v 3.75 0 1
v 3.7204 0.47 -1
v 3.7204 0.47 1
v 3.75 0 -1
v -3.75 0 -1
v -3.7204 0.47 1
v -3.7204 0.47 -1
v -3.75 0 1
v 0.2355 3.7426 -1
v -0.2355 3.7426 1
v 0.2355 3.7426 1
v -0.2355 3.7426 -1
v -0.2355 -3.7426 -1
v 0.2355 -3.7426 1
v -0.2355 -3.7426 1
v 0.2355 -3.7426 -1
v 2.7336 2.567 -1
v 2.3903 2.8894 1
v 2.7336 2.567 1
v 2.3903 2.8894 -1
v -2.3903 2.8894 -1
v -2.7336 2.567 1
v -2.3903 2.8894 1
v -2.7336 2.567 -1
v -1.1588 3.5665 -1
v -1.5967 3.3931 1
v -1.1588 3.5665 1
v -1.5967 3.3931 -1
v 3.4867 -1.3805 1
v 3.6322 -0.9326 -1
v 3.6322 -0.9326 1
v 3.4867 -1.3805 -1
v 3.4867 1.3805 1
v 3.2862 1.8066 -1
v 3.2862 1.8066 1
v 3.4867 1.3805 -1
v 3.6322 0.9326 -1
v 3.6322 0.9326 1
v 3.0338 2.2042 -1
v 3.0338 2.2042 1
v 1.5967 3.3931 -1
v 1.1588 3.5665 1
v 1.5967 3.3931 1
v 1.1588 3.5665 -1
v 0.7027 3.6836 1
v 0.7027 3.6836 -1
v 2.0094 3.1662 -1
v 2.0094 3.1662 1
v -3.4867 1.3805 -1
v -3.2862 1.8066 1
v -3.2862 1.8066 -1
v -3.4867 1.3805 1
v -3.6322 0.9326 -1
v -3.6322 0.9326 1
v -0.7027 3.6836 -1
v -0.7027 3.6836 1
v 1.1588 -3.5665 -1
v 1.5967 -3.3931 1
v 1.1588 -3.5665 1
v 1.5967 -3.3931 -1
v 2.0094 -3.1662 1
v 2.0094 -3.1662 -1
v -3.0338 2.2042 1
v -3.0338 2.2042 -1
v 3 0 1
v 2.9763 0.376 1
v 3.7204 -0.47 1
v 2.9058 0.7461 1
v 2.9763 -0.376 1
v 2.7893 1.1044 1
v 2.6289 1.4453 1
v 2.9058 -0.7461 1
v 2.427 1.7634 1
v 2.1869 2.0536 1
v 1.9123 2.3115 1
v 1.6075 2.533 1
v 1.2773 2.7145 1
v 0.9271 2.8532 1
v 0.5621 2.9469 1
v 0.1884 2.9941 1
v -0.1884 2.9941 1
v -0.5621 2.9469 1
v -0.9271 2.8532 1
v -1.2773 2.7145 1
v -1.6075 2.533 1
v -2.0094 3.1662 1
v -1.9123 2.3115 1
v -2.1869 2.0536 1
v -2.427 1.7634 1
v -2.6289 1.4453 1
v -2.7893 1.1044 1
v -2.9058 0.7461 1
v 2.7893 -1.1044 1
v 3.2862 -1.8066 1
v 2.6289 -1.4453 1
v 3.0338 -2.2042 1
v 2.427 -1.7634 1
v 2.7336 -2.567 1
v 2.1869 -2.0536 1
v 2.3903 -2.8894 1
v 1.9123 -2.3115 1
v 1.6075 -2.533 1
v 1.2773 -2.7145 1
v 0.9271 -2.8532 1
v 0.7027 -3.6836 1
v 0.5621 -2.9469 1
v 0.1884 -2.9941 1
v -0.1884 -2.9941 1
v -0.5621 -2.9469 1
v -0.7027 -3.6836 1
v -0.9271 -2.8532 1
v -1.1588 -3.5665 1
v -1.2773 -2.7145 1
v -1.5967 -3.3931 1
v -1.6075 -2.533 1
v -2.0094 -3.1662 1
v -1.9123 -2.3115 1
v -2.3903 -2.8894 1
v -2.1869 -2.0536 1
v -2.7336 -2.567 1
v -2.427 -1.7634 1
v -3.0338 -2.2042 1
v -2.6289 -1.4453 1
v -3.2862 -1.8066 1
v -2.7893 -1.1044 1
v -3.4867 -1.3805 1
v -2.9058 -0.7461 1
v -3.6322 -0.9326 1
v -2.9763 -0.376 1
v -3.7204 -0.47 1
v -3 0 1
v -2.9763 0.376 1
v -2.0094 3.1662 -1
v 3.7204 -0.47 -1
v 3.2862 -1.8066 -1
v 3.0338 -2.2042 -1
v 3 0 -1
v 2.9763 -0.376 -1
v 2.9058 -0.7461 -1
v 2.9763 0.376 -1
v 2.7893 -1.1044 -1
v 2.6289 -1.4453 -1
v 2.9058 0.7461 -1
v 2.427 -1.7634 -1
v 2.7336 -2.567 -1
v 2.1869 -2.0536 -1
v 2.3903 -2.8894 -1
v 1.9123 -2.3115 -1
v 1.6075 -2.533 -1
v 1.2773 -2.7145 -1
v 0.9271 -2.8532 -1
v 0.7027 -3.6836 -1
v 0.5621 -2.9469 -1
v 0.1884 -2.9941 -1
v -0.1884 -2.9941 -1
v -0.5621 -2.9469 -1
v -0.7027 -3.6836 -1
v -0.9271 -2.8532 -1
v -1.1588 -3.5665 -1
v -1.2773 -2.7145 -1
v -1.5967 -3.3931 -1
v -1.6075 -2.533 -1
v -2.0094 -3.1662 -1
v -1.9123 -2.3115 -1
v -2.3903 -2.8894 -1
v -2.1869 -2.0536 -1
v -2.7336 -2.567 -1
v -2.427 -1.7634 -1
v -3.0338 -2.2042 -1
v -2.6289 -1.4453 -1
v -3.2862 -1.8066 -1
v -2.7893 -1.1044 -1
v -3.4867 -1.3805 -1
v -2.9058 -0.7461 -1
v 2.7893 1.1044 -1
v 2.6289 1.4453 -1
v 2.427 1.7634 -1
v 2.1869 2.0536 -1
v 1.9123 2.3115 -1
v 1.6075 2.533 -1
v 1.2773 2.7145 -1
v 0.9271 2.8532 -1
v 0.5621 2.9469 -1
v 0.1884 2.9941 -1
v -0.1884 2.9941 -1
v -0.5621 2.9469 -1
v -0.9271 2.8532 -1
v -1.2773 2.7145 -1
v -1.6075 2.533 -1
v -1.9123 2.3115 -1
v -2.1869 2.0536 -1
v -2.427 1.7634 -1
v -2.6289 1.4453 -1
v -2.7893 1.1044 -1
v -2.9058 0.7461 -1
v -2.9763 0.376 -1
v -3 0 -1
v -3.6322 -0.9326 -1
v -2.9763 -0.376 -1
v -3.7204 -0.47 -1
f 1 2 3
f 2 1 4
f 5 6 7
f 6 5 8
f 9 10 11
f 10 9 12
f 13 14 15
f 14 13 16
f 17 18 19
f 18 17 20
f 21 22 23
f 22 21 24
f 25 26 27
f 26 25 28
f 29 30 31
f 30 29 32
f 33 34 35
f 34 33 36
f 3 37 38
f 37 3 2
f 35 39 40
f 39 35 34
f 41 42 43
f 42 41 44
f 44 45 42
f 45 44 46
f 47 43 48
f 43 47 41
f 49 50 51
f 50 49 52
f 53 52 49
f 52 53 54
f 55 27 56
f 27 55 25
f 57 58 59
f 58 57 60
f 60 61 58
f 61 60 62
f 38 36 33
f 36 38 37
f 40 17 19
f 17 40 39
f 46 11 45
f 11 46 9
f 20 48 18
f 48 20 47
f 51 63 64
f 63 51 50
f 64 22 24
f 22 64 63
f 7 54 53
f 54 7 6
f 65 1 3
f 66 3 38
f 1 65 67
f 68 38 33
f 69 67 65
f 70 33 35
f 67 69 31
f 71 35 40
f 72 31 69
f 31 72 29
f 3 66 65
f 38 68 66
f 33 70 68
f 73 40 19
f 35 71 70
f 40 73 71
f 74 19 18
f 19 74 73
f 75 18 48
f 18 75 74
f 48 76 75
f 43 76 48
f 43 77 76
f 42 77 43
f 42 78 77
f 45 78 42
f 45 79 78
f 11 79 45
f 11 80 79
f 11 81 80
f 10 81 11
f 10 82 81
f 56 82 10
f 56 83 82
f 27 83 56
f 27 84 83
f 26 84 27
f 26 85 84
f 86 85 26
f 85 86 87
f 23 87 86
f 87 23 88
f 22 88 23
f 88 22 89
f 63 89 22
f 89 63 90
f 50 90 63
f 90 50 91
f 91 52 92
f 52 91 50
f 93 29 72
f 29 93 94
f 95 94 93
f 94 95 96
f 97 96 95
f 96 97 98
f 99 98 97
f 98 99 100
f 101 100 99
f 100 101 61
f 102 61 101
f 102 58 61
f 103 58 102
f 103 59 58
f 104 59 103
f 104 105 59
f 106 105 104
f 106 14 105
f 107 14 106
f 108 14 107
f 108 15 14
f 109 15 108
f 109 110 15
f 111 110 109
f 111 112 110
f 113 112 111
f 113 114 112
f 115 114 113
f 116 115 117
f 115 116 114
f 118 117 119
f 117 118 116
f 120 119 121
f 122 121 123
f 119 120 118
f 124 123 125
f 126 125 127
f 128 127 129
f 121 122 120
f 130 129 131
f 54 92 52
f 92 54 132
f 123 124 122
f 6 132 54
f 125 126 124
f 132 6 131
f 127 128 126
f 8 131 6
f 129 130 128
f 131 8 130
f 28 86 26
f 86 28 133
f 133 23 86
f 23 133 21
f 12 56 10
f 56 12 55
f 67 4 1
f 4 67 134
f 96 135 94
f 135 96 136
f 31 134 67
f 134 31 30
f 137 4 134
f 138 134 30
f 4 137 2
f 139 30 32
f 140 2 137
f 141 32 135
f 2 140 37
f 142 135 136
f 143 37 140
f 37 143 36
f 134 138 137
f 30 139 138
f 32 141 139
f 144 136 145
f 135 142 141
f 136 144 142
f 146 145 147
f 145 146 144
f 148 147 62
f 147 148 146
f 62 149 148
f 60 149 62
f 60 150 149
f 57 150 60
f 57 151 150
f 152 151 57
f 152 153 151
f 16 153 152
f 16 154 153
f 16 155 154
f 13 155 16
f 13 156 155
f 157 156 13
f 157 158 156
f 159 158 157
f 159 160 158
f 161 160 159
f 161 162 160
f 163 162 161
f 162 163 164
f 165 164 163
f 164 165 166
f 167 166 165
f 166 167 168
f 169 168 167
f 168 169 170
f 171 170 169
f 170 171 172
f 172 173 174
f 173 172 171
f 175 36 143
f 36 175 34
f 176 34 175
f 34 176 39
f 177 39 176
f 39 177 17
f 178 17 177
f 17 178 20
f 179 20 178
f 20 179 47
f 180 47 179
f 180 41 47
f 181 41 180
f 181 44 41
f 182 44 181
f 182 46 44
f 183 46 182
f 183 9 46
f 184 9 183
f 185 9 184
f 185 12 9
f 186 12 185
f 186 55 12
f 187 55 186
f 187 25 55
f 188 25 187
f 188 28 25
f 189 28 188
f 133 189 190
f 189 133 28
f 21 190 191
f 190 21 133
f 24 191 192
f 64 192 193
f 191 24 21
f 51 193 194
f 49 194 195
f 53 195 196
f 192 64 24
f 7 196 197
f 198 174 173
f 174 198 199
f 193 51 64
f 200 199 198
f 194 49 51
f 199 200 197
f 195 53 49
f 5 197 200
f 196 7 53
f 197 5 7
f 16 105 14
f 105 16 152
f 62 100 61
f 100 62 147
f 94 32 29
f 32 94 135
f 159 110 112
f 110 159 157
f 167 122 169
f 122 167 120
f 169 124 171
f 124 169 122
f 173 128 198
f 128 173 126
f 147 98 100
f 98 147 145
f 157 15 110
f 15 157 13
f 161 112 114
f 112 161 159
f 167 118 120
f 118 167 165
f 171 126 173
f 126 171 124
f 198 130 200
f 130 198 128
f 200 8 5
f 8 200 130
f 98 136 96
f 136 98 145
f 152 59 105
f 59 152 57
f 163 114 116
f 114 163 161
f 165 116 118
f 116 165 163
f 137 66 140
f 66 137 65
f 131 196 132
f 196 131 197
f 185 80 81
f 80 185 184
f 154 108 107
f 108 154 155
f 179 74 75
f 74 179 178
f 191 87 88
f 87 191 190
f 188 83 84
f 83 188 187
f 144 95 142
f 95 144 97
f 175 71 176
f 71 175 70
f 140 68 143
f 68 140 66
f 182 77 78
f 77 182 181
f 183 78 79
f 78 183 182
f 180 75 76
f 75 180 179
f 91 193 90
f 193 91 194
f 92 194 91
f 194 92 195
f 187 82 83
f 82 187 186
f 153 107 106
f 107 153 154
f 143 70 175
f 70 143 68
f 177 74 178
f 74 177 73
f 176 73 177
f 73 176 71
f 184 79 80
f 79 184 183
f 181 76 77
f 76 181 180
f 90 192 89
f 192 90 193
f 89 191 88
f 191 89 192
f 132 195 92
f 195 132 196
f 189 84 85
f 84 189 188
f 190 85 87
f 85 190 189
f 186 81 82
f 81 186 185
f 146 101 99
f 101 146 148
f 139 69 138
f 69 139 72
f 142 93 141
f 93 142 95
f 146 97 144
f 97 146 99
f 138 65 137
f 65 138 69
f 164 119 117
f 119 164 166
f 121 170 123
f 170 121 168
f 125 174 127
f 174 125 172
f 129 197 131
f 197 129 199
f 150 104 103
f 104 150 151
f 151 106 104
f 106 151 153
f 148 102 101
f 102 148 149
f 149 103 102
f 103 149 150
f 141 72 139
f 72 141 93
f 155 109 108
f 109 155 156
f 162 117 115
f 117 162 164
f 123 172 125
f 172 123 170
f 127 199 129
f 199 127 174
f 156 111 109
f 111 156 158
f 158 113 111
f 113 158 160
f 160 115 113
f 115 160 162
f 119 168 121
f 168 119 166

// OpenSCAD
$fn = 50;


difference() {
	union() {
		translate(v = [0, 0, -1.0000000000]) {
			cylinder(h = 2, r = 3.7500000000);
		}
	}
	union() {
		translate(v = [0, 0, -100.0000000000]) {
			cylinder(h = 200, r = 3.0000000000);
		}
	}
}
